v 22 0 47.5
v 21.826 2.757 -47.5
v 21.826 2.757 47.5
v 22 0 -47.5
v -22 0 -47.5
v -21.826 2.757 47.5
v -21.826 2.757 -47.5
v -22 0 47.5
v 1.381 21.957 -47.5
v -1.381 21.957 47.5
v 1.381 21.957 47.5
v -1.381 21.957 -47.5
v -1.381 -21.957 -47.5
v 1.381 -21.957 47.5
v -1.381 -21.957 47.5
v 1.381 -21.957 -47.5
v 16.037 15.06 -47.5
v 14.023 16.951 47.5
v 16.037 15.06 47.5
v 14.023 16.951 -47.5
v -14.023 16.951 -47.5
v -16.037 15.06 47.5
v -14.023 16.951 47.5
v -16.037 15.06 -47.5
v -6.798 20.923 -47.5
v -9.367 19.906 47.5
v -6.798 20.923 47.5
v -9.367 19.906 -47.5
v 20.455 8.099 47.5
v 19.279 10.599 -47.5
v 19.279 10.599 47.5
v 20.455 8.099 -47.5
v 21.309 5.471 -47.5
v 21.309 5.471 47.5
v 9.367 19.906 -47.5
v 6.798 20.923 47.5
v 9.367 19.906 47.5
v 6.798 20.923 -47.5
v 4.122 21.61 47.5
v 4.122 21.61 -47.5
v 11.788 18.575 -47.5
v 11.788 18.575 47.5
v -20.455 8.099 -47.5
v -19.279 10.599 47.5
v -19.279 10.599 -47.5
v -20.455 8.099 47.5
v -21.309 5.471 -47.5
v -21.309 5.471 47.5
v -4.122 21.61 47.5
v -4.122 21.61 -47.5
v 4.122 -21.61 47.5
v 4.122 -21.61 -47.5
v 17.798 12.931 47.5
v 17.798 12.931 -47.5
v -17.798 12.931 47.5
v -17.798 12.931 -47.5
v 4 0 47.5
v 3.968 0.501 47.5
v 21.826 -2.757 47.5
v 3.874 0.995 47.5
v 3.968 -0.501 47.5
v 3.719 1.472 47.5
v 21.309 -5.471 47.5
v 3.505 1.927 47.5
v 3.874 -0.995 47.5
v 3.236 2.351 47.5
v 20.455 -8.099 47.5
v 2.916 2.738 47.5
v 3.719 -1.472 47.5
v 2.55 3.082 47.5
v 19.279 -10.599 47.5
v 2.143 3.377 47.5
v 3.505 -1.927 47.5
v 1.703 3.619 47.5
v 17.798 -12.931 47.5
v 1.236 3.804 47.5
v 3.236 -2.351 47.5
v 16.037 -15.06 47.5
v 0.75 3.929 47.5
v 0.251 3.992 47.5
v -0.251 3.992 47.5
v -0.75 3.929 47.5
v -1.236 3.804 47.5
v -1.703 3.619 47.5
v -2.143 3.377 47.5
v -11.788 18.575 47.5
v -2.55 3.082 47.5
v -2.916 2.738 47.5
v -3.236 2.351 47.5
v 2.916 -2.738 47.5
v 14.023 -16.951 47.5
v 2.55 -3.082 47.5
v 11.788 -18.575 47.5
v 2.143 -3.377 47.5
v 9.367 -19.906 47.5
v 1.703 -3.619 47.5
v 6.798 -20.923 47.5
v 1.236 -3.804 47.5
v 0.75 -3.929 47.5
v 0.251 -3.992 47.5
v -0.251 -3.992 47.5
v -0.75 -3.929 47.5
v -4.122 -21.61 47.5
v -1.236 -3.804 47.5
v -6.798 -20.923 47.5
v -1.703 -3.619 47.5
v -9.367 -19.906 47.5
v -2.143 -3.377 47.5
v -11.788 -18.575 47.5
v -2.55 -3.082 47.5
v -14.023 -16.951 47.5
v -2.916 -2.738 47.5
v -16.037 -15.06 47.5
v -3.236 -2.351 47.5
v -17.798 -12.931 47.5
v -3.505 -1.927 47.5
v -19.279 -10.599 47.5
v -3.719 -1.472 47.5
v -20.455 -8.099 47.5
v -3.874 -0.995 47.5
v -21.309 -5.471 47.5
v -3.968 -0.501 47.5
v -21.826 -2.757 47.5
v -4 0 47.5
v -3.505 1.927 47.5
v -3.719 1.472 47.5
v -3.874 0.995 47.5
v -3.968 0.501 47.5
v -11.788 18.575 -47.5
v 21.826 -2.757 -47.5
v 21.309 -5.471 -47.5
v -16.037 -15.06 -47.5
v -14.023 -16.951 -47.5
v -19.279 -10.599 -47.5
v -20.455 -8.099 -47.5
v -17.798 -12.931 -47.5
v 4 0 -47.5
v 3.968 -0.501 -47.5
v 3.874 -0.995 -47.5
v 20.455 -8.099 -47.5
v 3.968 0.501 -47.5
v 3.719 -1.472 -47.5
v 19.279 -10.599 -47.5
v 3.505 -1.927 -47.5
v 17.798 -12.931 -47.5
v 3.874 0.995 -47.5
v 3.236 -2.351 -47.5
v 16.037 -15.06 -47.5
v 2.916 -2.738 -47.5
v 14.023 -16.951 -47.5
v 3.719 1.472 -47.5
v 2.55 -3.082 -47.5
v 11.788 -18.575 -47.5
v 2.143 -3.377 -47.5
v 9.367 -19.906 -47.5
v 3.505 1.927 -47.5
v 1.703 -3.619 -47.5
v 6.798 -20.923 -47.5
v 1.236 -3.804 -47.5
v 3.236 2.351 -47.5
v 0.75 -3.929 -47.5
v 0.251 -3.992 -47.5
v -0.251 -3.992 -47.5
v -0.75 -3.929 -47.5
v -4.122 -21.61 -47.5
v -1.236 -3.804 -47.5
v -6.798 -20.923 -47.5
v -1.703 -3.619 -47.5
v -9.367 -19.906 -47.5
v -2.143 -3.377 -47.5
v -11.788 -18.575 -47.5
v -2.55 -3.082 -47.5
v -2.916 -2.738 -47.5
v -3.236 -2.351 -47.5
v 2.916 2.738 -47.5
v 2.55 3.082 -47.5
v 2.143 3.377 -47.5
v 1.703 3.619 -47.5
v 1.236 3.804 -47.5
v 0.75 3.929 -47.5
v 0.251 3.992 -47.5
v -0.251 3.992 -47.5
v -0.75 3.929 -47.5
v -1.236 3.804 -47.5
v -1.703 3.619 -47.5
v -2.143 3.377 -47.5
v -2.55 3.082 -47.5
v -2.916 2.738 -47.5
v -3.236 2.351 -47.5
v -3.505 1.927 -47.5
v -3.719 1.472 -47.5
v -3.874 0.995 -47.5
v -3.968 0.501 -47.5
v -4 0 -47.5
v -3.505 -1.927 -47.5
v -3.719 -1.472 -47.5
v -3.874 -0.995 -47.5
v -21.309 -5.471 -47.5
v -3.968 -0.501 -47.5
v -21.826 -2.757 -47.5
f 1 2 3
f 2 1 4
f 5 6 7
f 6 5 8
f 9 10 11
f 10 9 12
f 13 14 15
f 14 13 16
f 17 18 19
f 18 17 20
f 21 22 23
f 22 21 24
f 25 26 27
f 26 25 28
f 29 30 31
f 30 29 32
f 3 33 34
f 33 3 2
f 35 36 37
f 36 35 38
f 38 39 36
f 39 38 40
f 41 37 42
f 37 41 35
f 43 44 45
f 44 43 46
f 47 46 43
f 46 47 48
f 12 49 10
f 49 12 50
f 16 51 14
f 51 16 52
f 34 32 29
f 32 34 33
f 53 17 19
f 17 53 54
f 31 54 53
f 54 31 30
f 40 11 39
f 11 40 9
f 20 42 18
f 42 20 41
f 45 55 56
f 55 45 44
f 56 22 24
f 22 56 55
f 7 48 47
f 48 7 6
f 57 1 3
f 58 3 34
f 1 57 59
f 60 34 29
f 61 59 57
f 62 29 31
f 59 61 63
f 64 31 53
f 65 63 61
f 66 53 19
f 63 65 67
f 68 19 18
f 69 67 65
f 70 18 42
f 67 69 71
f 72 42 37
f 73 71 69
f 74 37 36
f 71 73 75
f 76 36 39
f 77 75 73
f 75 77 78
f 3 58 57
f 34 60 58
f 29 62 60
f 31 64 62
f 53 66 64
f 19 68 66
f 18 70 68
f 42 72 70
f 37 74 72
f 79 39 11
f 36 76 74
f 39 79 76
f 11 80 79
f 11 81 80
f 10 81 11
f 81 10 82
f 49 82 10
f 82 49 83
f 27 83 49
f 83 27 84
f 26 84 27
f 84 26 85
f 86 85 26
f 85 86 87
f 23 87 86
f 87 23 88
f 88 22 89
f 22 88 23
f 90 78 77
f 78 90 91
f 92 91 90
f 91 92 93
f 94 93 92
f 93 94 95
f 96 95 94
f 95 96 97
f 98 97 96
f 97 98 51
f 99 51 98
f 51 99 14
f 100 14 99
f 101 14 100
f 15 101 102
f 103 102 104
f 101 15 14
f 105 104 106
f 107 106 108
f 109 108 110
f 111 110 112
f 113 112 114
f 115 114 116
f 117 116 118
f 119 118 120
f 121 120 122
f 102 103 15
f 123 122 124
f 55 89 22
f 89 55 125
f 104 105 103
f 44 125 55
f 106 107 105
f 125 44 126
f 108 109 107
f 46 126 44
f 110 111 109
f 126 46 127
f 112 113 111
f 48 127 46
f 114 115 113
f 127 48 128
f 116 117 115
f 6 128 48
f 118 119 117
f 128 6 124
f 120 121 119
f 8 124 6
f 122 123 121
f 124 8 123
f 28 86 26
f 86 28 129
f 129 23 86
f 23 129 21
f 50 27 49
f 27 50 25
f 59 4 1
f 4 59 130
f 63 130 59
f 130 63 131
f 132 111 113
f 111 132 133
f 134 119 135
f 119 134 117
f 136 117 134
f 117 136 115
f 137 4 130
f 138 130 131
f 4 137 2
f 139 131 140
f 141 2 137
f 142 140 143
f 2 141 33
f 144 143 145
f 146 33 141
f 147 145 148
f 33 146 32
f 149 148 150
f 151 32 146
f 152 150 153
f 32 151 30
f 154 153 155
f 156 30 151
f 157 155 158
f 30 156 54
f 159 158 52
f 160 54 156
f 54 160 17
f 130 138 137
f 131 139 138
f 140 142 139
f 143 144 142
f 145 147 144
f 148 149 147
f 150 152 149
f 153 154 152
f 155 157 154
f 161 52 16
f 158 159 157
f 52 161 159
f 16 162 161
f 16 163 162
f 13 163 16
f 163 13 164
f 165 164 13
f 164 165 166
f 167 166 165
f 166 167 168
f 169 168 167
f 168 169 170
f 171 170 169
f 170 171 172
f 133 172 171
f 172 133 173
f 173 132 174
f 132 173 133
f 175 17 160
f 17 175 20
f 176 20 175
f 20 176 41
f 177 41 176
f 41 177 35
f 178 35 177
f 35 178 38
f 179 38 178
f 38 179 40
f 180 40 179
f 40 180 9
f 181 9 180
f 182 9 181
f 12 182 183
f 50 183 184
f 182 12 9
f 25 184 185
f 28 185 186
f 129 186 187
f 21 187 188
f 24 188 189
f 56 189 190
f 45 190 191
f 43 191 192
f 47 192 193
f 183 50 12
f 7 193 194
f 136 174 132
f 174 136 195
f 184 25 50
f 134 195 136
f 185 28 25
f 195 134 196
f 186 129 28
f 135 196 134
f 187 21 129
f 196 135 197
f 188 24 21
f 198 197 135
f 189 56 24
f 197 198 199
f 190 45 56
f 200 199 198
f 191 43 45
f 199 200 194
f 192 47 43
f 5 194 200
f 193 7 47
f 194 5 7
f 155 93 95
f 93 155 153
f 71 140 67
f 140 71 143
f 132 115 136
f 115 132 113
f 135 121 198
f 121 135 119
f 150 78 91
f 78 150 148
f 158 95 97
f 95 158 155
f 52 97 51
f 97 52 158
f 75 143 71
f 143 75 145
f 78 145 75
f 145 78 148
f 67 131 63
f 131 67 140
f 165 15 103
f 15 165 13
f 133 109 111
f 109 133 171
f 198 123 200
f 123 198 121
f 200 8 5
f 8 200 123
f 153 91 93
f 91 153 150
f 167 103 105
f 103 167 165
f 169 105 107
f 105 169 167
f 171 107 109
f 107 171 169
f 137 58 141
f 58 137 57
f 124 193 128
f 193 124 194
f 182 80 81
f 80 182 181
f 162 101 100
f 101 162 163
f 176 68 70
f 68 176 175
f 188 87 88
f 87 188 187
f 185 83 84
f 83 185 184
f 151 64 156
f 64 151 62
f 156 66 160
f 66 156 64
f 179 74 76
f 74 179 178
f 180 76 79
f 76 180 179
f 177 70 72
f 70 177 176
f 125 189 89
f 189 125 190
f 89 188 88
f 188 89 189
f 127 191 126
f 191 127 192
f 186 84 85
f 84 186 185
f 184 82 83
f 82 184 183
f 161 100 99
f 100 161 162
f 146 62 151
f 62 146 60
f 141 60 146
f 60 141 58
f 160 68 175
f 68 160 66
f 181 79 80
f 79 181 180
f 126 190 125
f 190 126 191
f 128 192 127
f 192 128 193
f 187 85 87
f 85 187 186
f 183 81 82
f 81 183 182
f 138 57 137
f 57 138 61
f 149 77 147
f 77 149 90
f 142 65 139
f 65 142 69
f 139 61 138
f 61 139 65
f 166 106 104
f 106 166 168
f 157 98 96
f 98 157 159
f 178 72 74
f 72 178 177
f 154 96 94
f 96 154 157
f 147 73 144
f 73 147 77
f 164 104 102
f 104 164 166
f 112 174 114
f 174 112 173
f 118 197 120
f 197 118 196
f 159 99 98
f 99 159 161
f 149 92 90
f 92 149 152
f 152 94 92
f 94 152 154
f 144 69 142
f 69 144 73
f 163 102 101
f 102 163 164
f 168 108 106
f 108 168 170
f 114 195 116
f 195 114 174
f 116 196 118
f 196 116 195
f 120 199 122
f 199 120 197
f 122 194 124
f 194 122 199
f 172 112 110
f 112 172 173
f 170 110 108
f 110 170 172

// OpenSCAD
$fn = 50;


difference() {
	union() {
		translate(v = [0, 0, -47.5000000000]) {
			cylinder(h = 95, r = 22.0000000000);
		}
	}
	union() {
		translate(v = [0, 0, -100.0000000000]) {
			cylinder(h = 200, r = 4);
		}
	}
}
